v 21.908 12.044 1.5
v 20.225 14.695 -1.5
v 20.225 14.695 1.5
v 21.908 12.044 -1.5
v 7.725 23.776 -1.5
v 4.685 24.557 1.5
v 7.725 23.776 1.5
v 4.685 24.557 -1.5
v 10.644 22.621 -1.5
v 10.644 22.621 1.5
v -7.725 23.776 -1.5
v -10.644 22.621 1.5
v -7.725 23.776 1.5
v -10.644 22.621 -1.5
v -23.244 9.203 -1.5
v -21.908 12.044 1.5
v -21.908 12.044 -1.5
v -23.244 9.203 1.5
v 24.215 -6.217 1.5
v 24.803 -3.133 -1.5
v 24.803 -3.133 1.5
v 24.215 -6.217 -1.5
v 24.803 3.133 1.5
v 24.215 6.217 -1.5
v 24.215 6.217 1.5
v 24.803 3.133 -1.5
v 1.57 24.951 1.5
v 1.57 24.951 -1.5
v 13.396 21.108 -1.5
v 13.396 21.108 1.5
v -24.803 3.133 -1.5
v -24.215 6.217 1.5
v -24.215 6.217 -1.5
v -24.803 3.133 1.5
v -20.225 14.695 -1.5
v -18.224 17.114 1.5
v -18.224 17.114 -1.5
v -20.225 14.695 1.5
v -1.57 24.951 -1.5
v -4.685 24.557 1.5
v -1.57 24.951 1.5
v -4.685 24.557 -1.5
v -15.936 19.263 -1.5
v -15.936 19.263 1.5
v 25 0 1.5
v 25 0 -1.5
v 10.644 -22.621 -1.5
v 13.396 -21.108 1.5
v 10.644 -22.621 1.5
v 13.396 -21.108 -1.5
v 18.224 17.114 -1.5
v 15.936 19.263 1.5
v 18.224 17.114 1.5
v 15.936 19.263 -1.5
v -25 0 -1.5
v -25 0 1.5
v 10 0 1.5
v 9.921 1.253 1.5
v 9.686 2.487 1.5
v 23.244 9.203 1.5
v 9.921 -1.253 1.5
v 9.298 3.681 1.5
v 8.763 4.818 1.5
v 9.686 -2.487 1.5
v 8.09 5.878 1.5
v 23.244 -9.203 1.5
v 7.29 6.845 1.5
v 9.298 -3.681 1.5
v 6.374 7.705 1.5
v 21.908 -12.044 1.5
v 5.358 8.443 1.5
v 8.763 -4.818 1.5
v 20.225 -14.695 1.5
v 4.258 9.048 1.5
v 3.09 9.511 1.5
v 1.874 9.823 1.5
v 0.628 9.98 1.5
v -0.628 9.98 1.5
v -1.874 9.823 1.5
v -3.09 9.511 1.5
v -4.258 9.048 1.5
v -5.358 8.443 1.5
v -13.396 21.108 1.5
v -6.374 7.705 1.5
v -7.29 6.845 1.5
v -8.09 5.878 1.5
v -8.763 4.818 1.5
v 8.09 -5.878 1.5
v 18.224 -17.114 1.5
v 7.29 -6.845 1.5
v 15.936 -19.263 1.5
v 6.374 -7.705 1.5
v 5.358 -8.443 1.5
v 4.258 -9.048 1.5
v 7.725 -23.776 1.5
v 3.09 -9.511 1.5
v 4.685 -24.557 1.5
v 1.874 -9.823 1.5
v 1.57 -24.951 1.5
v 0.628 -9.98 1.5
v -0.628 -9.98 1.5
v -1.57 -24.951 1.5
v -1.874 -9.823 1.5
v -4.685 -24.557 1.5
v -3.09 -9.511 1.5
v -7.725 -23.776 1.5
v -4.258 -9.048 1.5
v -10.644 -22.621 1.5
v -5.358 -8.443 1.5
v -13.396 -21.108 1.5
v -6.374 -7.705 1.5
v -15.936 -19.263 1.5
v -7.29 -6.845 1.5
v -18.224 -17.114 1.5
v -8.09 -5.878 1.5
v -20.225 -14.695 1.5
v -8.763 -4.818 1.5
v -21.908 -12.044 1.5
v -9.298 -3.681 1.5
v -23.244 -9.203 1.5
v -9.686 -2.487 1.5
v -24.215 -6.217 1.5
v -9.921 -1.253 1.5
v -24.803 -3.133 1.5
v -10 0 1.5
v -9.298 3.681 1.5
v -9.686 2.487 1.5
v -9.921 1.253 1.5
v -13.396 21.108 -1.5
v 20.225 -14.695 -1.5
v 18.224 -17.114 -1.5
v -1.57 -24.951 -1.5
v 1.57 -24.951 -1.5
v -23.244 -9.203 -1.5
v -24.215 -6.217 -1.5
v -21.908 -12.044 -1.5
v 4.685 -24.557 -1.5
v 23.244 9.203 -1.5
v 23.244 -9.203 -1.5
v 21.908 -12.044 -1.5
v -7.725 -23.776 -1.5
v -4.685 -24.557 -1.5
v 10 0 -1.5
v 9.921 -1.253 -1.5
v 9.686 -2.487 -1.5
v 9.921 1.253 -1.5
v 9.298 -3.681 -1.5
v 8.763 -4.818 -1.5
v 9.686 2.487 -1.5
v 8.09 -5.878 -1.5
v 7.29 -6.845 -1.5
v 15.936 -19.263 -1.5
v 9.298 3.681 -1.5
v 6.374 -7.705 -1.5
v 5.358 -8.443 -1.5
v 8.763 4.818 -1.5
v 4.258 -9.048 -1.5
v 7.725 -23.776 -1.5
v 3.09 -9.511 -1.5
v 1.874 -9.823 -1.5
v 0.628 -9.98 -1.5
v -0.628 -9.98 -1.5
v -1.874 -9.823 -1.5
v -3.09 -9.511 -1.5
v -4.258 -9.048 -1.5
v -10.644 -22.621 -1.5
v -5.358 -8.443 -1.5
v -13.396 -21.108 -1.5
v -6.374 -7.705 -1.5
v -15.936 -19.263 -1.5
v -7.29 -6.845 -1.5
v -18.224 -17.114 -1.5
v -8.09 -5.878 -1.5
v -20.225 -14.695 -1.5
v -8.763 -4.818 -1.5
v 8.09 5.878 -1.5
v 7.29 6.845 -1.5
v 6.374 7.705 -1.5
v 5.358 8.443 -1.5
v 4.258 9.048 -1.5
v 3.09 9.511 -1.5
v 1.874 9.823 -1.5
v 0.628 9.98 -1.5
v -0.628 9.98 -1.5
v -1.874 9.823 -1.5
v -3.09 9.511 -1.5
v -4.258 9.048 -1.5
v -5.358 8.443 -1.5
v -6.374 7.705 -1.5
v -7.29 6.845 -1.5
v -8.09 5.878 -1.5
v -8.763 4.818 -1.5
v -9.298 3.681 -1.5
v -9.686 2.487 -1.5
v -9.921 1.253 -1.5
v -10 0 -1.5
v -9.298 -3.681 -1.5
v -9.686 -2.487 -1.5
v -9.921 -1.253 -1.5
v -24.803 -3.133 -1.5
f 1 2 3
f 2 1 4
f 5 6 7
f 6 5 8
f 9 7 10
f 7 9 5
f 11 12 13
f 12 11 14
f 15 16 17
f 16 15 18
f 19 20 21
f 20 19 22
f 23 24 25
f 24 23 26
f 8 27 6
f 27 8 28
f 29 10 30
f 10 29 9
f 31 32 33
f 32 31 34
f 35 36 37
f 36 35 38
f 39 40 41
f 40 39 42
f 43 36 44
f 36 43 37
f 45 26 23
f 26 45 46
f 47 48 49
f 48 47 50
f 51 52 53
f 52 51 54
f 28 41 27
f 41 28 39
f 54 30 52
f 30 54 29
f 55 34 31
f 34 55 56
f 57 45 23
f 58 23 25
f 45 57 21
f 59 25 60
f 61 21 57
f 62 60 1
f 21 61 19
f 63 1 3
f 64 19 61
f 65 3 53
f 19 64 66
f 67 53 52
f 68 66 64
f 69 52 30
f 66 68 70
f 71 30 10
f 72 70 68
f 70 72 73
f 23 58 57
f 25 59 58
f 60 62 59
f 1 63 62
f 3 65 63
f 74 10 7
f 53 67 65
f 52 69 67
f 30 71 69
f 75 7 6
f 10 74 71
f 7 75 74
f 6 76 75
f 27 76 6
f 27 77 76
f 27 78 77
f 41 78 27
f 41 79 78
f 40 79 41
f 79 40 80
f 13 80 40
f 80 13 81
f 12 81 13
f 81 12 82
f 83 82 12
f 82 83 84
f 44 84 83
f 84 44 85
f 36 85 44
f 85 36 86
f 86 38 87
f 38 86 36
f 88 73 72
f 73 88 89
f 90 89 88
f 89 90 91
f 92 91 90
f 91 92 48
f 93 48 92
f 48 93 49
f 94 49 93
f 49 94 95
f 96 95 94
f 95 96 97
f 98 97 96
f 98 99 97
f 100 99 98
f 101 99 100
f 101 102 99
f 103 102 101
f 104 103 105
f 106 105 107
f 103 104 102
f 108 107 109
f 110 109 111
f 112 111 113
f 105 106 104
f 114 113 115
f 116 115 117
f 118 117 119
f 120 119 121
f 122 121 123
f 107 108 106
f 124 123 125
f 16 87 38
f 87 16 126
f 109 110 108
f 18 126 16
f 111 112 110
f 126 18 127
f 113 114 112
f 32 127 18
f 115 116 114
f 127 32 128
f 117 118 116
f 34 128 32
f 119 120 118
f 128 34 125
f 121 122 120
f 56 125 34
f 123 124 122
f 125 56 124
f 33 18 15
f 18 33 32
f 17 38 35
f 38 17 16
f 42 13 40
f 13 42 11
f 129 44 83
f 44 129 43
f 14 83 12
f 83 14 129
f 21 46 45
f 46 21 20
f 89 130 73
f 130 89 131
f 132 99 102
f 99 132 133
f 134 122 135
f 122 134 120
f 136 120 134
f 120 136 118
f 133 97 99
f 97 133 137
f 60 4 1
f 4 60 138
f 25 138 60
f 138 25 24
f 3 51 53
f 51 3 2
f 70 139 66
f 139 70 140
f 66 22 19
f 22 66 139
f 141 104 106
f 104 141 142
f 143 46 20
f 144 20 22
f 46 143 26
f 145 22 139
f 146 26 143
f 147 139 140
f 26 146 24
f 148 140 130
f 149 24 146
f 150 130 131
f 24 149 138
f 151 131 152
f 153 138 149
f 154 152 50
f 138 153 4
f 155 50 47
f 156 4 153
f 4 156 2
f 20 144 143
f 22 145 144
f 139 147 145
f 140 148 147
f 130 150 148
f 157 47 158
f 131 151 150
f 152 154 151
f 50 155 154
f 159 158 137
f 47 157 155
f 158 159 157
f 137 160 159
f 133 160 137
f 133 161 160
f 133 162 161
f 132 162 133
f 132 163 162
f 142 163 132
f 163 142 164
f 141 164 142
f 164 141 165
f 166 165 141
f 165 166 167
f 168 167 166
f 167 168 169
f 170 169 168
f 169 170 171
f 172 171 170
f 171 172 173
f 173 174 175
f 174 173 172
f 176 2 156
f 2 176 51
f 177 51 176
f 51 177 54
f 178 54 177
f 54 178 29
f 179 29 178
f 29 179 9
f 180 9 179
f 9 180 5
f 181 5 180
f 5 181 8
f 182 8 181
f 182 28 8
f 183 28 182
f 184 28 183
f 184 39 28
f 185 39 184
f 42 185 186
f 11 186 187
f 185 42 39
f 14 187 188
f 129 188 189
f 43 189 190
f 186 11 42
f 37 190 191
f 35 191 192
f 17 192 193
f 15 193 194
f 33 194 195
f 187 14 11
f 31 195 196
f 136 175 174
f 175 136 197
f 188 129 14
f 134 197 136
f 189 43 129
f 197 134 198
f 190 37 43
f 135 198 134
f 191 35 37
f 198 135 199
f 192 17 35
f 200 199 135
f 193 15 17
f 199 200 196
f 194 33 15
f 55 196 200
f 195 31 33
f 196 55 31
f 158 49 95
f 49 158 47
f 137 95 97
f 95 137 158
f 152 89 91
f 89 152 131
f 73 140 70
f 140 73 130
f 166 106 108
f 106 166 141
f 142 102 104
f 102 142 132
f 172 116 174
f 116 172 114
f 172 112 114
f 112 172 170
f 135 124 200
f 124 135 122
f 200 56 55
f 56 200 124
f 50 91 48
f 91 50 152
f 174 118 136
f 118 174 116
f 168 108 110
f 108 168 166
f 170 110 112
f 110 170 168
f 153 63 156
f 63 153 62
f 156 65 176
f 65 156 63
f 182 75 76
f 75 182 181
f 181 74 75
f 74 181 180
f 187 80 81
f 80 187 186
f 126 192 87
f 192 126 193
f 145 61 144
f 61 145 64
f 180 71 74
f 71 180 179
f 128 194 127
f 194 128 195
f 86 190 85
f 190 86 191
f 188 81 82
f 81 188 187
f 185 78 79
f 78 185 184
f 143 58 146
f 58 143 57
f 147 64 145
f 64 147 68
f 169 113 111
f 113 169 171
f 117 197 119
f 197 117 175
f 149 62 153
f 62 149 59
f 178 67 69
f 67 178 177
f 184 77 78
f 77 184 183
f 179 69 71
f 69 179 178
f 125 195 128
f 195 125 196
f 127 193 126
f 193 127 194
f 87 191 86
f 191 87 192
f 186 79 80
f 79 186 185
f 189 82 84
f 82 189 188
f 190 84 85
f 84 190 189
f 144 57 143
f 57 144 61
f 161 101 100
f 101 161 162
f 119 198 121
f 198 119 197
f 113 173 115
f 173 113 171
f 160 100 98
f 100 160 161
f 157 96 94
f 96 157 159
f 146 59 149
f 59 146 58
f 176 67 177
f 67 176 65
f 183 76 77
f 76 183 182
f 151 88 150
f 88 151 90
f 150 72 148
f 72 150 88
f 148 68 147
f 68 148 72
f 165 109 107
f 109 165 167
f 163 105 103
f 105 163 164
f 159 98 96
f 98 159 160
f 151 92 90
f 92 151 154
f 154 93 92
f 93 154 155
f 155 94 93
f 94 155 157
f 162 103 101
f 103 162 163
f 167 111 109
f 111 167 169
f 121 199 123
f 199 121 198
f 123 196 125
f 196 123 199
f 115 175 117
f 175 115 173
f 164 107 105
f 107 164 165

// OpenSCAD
$fn = 50;


difference() {
	union() {
		translate(v = [0, 0, -1.5000000000]) {
			cylinder(h = 3, r = 25.0000000000);
		}
	}
	union() {
		translate(v = [0, 0, -100.0000000000]) {
			cylinder(h = 200, r = 10);
		}
	}
}
